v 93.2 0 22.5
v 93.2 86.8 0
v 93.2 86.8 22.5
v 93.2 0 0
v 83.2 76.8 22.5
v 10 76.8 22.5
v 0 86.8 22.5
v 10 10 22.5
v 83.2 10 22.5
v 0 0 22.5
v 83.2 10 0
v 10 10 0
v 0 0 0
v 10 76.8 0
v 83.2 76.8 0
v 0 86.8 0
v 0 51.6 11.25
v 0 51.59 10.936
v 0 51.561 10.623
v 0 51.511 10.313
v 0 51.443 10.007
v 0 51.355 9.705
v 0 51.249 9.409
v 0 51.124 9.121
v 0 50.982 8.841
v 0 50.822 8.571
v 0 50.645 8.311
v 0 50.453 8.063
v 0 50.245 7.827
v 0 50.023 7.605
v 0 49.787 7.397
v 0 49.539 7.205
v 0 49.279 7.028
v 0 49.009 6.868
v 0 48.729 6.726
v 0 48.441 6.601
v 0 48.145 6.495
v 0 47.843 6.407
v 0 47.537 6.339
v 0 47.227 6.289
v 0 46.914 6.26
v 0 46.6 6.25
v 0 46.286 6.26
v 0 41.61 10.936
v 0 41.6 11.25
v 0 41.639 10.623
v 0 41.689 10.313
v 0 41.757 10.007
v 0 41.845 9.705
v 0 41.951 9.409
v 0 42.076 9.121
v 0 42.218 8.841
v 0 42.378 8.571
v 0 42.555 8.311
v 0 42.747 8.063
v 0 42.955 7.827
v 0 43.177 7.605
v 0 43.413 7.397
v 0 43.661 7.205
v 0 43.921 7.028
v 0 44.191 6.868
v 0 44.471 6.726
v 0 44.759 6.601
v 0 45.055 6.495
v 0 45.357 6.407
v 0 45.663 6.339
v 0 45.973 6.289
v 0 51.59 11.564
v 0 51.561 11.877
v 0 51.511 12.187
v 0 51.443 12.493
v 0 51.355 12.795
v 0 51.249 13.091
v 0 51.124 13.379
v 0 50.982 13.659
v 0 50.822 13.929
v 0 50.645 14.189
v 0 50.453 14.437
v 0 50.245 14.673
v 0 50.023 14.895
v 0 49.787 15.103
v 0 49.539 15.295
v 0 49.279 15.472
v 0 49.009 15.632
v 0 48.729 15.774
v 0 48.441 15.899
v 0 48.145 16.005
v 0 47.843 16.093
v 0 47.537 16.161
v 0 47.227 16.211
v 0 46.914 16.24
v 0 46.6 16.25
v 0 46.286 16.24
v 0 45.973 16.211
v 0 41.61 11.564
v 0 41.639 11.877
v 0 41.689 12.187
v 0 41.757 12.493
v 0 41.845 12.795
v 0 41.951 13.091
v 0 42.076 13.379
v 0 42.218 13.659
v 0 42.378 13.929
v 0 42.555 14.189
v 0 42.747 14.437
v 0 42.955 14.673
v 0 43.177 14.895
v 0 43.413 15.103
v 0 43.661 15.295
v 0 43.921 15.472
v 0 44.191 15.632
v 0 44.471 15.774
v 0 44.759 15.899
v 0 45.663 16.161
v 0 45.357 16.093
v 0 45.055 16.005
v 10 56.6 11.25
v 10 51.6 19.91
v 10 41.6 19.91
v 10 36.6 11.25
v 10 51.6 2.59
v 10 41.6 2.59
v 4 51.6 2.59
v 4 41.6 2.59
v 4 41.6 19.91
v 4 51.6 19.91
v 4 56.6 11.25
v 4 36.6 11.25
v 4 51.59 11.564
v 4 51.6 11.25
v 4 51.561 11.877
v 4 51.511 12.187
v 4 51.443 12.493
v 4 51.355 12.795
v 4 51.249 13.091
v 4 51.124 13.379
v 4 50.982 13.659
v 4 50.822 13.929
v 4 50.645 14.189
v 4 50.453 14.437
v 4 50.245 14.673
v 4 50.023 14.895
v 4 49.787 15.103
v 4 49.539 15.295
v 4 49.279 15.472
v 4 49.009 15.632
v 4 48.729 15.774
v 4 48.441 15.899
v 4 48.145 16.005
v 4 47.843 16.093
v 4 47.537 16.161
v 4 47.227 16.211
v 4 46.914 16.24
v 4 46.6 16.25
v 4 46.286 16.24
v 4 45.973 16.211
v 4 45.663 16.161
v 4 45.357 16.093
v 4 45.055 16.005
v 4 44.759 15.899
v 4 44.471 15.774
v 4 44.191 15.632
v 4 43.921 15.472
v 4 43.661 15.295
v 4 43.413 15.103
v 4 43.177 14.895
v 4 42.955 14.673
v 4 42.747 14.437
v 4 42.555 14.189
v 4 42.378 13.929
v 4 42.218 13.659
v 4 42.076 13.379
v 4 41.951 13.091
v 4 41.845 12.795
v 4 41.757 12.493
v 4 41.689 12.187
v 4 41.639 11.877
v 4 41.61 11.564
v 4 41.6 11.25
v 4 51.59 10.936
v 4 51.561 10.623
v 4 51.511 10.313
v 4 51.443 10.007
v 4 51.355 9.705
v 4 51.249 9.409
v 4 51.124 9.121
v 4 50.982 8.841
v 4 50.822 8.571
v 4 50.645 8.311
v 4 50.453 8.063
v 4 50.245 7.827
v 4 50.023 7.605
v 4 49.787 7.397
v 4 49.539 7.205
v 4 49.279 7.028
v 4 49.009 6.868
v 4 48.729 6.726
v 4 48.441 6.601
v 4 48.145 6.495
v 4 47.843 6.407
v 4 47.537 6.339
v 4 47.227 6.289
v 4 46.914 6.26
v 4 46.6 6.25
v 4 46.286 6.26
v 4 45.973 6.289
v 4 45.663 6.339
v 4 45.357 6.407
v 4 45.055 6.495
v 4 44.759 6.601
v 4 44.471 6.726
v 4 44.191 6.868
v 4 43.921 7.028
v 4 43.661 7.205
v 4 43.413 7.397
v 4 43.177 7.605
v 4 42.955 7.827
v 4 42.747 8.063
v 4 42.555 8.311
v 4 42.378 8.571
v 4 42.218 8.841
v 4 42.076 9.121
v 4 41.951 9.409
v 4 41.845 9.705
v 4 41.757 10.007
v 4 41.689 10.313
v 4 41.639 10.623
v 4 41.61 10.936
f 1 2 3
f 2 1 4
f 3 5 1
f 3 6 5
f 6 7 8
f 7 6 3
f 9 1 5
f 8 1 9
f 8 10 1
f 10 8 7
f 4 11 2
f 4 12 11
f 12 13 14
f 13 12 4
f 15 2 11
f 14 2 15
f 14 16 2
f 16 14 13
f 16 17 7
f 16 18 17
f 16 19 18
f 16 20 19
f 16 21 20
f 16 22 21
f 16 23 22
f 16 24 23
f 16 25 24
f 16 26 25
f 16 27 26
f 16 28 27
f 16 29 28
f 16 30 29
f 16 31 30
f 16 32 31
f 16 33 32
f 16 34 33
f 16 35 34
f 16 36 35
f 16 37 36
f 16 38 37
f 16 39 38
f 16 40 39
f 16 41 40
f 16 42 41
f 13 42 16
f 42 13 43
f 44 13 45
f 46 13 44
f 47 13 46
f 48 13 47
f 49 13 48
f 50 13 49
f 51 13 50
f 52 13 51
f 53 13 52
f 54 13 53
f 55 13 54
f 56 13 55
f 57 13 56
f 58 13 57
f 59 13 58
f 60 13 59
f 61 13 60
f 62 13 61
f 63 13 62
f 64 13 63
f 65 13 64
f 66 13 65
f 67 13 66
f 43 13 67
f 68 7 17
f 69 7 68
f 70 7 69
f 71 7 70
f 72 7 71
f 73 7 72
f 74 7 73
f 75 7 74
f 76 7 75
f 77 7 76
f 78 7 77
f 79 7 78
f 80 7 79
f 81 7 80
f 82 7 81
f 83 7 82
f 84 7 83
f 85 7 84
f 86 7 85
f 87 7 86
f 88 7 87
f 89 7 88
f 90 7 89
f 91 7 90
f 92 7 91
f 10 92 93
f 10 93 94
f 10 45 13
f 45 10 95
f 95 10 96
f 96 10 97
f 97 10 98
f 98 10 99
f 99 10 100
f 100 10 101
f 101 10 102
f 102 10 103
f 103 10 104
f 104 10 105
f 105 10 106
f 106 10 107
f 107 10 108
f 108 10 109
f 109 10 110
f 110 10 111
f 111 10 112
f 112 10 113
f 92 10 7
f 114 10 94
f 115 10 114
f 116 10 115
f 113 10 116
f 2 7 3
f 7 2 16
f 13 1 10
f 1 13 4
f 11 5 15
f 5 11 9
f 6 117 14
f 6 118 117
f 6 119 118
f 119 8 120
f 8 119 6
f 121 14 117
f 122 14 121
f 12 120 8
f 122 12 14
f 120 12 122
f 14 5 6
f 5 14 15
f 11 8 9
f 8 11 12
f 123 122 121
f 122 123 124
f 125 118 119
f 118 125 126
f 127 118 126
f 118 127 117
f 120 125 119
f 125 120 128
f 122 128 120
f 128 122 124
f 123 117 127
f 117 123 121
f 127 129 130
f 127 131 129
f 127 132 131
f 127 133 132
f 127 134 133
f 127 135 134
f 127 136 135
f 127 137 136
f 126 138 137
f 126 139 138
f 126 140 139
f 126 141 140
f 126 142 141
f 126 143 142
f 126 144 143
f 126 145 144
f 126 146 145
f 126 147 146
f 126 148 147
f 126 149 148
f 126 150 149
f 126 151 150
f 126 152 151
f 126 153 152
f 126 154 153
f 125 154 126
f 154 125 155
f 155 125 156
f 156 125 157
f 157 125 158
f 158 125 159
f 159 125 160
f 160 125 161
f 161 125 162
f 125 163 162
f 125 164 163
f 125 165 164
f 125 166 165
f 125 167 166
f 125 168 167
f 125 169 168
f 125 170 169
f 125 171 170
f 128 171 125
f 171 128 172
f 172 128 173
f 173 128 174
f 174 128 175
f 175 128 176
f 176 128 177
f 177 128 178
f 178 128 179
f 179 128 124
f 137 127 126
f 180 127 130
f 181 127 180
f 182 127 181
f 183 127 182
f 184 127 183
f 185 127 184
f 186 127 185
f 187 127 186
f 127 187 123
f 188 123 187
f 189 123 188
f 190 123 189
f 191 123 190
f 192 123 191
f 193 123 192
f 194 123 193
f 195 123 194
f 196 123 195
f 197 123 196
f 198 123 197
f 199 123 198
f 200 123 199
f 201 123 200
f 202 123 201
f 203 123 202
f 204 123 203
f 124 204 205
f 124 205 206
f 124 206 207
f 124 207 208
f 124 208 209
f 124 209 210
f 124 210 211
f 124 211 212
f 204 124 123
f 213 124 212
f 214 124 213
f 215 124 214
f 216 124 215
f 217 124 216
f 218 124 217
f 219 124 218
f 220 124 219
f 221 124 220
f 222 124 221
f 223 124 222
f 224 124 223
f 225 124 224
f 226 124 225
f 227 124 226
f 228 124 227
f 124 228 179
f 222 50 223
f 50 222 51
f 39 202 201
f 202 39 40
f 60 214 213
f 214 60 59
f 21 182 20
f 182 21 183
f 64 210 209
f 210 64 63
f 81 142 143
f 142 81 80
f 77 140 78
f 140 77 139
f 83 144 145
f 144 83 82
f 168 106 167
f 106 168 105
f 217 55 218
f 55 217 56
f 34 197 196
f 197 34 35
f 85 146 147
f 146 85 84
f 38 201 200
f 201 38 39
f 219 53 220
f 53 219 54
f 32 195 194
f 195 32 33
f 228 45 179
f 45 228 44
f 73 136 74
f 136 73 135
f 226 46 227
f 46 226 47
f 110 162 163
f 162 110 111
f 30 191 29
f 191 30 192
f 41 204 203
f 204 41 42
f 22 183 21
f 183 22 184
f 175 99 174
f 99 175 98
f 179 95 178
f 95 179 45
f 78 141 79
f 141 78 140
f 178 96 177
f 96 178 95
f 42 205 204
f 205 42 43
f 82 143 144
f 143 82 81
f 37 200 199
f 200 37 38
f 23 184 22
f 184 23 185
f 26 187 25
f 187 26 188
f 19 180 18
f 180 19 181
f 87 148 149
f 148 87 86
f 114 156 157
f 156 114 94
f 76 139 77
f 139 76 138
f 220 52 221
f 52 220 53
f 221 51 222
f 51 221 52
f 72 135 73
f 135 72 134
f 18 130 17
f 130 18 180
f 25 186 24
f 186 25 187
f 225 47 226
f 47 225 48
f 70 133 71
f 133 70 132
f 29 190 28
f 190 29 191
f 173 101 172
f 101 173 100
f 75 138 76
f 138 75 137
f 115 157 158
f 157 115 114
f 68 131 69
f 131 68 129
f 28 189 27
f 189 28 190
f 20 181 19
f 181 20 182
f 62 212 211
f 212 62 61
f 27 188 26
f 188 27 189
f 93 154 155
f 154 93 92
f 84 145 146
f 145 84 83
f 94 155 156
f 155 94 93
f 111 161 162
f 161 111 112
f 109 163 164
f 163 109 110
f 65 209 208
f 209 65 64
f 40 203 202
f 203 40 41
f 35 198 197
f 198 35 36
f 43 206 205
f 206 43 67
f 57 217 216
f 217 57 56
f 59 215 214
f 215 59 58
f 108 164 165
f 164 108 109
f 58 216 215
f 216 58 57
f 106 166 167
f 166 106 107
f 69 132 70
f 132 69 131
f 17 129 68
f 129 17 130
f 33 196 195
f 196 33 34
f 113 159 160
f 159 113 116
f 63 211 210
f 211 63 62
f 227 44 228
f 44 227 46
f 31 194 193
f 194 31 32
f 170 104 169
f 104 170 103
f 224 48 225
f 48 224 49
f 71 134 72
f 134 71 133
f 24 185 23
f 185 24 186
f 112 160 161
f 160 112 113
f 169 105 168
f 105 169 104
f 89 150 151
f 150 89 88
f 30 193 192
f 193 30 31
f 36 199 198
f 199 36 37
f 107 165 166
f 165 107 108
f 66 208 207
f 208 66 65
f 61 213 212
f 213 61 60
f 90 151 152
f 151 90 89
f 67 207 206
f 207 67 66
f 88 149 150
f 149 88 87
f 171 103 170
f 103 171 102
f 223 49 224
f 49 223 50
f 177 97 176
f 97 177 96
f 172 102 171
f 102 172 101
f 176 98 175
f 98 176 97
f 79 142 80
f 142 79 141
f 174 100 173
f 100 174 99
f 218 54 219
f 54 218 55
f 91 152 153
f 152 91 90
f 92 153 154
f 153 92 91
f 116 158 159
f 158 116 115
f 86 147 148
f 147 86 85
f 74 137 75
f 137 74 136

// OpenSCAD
//measurements

//https://www.cuemath.com/measurement/length-width-height/


//main body (looking from top) in mm

Length_internal = 66.8;
Width_internal = 73.2;
Height_internal = 22.5;

External_thickness= 10;

nut_height = 8.5;
nut_width = 20;

Holding_stem_diameter = 10;

module main_body(){
    difference(){
        cube([Width_internal+External_thickness*2,Length_internal+External_thickness*2,Height_internal]);
        translate([External_thickness,External_thickness,0]){   cube([Width_internal,Length_internal,Height_internal]);}
    }
}

module nut(){
    translate([External_thickness-6,Width_internal/2+nut_width/2,Height_internal/2]){
        rotate([90,0,0]){
            rotate([0,90,0]){
                color("blue"){cylinder(h=6, r=nut_width/2, $fn=6);}
            }
        }
    }
}
module hole_for_stem(){
    translate([0,Width_internal/2+nut_width/2,Height_internal/2]){
        rotate([0,90,0]){
            cylinder(h=External_thickness, d=Holding_stem_diameter, $fn=100);
        }
    }
}


difference(){
    main_body();
    nut();
    hole_for_stem();
}
